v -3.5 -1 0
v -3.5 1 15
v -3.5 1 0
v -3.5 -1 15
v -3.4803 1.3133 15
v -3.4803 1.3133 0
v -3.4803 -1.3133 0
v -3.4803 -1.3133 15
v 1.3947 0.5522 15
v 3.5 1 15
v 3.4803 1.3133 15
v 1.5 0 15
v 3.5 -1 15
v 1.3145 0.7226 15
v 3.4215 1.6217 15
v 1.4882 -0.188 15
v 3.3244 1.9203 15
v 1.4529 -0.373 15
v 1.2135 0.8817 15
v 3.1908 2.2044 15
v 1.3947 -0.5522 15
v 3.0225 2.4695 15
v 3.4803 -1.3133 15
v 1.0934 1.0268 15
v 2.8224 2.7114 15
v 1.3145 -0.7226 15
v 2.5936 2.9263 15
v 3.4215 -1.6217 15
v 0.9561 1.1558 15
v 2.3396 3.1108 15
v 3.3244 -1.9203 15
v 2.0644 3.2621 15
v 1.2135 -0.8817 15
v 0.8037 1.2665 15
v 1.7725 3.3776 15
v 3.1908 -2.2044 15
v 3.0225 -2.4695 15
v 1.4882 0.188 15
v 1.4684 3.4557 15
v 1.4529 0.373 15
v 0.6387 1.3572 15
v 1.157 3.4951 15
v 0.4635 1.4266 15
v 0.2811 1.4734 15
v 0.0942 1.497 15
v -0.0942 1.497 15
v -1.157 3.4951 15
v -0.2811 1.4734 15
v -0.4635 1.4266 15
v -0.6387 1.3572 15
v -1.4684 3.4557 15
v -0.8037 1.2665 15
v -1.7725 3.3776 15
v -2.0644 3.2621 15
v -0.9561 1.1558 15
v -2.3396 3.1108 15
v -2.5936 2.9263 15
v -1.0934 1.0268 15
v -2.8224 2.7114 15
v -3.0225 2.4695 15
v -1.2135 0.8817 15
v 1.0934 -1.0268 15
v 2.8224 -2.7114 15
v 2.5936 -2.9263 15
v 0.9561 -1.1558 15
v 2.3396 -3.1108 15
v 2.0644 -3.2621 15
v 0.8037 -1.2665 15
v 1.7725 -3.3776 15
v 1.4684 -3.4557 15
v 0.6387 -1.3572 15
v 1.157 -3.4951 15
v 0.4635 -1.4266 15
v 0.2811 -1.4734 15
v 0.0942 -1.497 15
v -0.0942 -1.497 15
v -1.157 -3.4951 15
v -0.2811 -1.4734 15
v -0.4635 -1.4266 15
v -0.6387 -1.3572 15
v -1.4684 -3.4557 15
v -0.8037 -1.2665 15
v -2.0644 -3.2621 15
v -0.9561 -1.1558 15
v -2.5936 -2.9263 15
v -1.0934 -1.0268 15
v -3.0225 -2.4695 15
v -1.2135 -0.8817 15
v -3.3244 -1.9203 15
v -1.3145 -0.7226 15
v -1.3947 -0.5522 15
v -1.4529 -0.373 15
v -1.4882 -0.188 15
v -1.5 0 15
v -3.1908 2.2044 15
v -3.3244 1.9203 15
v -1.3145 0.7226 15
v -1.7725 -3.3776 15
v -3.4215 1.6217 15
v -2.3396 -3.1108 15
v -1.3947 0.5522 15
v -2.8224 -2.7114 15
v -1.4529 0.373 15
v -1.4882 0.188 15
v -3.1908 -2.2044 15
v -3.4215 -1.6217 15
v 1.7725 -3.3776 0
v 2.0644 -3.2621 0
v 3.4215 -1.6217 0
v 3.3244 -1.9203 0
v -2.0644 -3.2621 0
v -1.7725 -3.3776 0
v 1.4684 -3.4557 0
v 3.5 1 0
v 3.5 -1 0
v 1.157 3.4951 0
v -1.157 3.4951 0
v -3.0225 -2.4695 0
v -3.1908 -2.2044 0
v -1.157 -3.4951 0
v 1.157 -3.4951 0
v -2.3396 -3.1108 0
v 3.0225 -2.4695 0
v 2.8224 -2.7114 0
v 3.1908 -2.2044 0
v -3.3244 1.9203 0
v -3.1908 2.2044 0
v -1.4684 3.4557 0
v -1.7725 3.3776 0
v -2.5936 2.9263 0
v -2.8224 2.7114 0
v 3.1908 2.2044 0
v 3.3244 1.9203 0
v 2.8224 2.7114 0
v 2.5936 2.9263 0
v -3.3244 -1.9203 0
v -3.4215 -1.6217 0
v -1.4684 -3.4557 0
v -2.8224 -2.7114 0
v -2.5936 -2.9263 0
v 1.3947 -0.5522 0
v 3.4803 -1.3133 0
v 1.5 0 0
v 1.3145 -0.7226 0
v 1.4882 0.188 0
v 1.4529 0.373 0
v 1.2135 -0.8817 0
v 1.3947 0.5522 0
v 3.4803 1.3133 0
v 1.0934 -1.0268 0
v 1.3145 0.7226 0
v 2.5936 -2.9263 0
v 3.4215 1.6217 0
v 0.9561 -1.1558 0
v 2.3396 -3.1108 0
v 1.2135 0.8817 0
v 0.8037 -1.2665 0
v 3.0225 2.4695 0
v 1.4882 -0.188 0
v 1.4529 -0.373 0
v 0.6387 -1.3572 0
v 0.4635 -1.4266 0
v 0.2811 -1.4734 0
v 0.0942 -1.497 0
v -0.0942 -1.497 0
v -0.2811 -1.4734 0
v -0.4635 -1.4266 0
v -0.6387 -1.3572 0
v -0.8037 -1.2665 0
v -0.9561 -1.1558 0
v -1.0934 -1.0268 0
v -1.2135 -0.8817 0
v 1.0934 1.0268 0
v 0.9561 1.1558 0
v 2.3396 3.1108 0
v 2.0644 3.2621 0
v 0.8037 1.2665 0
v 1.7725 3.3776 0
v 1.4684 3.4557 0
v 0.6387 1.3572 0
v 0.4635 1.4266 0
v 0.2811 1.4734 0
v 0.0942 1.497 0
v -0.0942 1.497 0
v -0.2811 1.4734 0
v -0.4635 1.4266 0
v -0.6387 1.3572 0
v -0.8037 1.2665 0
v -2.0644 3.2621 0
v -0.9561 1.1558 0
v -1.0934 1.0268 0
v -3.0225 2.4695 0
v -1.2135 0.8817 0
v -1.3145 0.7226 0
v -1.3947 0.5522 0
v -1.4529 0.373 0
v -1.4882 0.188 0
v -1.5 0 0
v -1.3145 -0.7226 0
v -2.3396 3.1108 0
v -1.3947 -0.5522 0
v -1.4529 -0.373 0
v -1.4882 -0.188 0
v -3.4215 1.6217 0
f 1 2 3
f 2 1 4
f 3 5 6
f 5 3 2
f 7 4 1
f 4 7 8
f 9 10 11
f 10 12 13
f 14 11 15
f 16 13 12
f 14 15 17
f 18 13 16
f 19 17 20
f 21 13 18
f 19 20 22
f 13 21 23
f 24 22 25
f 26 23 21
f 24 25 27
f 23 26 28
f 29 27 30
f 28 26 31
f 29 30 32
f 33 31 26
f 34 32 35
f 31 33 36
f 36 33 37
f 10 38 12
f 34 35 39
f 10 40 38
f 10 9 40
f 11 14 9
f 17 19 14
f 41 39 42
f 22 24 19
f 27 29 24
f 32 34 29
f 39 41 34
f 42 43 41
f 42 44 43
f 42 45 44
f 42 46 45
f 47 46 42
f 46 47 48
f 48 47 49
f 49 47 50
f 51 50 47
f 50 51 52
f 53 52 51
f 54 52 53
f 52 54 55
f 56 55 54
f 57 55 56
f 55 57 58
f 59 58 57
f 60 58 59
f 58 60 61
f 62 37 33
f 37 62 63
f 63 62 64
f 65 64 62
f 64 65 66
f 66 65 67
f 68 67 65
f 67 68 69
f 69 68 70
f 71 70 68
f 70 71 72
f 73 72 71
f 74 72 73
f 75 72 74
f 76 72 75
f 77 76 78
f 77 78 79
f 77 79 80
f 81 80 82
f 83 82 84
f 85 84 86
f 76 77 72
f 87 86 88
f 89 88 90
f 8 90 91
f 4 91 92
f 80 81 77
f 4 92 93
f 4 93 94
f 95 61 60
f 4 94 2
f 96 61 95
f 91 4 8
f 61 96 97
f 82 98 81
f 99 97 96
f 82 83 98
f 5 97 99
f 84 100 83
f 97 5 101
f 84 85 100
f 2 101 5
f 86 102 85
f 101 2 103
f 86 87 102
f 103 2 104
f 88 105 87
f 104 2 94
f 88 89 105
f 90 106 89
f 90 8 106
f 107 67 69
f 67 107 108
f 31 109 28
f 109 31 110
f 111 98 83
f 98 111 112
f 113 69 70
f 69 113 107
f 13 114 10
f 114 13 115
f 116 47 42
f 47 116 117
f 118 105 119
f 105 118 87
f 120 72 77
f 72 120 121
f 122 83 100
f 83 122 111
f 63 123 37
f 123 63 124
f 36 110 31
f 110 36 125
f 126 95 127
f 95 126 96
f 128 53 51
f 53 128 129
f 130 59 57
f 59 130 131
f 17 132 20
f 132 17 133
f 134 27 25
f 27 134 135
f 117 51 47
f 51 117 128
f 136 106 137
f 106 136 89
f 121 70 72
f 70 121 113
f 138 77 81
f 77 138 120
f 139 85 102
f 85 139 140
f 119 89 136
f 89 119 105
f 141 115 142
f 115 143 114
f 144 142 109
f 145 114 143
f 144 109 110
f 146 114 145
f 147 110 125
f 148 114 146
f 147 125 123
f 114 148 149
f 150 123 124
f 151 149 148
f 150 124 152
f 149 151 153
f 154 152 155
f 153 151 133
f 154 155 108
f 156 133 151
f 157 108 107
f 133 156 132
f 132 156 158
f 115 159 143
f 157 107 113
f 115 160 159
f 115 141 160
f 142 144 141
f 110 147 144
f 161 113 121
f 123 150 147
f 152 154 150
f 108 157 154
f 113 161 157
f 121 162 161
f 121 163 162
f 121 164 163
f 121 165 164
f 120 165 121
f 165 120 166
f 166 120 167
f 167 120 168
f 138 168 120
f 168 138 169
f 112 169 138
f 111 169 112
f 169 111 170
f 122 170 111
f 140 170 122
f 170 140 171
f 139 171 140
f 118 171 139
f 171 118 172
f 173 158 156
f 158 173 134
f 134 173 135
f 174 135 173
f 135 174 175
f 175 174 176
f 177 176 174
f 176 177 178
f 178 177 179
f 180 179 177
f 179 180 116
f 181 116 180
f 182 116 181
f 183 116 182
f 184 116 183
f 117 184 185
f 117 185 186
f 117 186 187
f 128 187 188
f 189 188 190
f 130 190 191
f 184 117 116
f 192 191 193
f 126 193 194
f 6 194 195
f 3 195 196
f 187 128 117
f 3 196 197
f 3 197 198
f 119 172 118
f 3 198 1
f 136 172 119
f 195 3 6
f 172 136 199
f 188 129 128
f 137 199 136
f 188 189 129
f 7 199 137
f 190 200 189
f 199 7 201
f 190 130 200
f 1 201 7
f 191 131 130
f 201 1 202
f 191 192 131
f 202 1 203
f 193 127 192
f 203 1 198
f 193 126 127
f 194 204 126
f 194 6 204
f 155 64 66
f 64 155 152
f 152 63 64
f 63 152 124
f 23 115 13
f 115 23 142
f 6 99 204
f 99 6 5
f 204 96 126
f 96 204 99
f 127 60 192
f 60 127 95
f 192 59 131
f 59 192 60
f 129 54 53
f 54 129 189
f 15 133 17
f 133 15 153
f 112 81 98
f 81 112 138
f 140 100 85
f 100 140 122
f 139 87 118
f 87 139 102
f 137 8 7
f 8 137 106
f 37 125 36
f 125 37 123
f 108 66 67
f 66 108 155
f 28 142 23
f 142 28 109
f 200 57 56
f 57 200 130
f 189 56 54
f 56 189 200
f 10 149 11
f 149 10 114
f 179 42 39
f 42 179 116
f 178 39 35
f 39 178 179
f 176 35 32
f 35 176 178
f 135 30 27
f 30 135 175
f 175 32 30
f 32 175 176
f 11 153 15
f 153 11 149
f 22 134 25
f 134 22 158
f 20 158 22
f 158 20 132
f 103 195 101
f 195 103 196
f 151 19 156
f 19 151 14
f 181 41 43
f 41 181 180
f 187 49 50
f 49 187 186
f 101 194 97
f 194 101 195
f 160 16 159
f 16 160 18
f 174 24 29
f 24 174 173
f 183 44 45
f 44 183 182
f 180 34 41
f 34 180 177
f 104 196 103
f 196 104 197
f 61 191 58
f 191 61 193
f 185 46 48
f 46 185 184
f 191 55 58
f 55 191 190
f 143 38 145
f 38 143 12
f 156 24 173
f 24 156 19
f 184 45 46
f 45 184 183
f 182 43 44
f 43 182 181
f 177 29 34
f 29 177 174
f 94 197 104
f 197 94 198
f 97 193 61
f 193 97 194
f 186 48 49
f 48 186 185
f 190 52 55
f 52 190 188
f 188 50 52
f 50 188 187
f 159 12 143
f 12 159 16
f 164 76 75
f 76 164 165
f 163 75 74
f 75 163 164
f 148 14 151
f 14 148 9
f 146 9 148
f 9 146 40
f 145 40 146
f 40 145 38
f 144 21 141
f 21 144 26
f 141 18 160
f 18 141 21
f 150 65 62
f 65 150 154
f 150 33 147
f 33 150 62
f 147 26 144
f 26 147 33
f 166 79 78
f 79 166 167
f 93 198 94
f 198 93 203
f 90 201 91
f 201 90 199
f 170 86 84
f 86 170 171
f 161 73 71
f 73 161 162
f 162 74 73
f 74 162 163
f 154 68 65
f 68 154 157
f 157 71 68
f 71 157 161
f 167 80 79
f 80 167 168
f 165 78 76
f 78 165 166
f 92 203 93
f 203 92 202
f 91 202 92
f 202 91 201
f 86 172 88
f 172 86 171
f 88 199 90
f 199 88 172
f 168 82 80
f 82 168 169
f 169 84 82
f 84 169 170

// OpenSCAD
$fn = 50;


difference() {
	union() {
		translate(v = [0, 0, 0]) {
			rotate(a = [0, 0, 0]) {
				hull() {
					translate(v = [-1.0000000000, 1.0000000000, 0]) {
						rotate(a = [0, 0, 0]) {
							translate(v = [0, 0, 0]) {
								rotate(a = [0, 0, 0]) {
									cylinder(h = 15, r = 2.5000000000);
								}
							}
						}
					}
					translate(v = [1.0000000000, 1.0000000000, 0]) {
						rotate(a = [0, 0, 0]) {
							translate(v = [0, 0, 0]) {
								rotate(a = [0, 0, 0]) {
									cylinder(h = 15, r = 2.5000000000);
								}
							}
						}
					}
					translate(v = [-1.0000000000, -1.0000000000, 0]) {
						rotate(a = [0, 0, 0]) {
							translate(v = [0, 0, 0]) {
								rotate(a = [0, 0, 0]) {
									cylinder(h = 15, r = 2.5000000000);
								}
							}
						}
					}
					translate(v = [1.0000000000, -1.0000000000, 0]) {
						rotate(a = [0, 0, 0]) {
							translate(v = [0, 0, 0]) {
								rotate(a = [0, 0, 0]) {
									cylinder(h = 15, r = 2.5000000000);
								}
							}
						}
					}
				}
			}
		}
	}
	union() {
		translate(v = [0.0000000000, 0.0000000000, 0]) {
			rotate(a = [0, 0, 0]) {
				translate(v = [0, 0, -50]) {
					rotate(a = [0, 0, 0]) {
						cylinder(h = 100, r = 1.5000000000);
					}
				}
			}
		}
	}
}
